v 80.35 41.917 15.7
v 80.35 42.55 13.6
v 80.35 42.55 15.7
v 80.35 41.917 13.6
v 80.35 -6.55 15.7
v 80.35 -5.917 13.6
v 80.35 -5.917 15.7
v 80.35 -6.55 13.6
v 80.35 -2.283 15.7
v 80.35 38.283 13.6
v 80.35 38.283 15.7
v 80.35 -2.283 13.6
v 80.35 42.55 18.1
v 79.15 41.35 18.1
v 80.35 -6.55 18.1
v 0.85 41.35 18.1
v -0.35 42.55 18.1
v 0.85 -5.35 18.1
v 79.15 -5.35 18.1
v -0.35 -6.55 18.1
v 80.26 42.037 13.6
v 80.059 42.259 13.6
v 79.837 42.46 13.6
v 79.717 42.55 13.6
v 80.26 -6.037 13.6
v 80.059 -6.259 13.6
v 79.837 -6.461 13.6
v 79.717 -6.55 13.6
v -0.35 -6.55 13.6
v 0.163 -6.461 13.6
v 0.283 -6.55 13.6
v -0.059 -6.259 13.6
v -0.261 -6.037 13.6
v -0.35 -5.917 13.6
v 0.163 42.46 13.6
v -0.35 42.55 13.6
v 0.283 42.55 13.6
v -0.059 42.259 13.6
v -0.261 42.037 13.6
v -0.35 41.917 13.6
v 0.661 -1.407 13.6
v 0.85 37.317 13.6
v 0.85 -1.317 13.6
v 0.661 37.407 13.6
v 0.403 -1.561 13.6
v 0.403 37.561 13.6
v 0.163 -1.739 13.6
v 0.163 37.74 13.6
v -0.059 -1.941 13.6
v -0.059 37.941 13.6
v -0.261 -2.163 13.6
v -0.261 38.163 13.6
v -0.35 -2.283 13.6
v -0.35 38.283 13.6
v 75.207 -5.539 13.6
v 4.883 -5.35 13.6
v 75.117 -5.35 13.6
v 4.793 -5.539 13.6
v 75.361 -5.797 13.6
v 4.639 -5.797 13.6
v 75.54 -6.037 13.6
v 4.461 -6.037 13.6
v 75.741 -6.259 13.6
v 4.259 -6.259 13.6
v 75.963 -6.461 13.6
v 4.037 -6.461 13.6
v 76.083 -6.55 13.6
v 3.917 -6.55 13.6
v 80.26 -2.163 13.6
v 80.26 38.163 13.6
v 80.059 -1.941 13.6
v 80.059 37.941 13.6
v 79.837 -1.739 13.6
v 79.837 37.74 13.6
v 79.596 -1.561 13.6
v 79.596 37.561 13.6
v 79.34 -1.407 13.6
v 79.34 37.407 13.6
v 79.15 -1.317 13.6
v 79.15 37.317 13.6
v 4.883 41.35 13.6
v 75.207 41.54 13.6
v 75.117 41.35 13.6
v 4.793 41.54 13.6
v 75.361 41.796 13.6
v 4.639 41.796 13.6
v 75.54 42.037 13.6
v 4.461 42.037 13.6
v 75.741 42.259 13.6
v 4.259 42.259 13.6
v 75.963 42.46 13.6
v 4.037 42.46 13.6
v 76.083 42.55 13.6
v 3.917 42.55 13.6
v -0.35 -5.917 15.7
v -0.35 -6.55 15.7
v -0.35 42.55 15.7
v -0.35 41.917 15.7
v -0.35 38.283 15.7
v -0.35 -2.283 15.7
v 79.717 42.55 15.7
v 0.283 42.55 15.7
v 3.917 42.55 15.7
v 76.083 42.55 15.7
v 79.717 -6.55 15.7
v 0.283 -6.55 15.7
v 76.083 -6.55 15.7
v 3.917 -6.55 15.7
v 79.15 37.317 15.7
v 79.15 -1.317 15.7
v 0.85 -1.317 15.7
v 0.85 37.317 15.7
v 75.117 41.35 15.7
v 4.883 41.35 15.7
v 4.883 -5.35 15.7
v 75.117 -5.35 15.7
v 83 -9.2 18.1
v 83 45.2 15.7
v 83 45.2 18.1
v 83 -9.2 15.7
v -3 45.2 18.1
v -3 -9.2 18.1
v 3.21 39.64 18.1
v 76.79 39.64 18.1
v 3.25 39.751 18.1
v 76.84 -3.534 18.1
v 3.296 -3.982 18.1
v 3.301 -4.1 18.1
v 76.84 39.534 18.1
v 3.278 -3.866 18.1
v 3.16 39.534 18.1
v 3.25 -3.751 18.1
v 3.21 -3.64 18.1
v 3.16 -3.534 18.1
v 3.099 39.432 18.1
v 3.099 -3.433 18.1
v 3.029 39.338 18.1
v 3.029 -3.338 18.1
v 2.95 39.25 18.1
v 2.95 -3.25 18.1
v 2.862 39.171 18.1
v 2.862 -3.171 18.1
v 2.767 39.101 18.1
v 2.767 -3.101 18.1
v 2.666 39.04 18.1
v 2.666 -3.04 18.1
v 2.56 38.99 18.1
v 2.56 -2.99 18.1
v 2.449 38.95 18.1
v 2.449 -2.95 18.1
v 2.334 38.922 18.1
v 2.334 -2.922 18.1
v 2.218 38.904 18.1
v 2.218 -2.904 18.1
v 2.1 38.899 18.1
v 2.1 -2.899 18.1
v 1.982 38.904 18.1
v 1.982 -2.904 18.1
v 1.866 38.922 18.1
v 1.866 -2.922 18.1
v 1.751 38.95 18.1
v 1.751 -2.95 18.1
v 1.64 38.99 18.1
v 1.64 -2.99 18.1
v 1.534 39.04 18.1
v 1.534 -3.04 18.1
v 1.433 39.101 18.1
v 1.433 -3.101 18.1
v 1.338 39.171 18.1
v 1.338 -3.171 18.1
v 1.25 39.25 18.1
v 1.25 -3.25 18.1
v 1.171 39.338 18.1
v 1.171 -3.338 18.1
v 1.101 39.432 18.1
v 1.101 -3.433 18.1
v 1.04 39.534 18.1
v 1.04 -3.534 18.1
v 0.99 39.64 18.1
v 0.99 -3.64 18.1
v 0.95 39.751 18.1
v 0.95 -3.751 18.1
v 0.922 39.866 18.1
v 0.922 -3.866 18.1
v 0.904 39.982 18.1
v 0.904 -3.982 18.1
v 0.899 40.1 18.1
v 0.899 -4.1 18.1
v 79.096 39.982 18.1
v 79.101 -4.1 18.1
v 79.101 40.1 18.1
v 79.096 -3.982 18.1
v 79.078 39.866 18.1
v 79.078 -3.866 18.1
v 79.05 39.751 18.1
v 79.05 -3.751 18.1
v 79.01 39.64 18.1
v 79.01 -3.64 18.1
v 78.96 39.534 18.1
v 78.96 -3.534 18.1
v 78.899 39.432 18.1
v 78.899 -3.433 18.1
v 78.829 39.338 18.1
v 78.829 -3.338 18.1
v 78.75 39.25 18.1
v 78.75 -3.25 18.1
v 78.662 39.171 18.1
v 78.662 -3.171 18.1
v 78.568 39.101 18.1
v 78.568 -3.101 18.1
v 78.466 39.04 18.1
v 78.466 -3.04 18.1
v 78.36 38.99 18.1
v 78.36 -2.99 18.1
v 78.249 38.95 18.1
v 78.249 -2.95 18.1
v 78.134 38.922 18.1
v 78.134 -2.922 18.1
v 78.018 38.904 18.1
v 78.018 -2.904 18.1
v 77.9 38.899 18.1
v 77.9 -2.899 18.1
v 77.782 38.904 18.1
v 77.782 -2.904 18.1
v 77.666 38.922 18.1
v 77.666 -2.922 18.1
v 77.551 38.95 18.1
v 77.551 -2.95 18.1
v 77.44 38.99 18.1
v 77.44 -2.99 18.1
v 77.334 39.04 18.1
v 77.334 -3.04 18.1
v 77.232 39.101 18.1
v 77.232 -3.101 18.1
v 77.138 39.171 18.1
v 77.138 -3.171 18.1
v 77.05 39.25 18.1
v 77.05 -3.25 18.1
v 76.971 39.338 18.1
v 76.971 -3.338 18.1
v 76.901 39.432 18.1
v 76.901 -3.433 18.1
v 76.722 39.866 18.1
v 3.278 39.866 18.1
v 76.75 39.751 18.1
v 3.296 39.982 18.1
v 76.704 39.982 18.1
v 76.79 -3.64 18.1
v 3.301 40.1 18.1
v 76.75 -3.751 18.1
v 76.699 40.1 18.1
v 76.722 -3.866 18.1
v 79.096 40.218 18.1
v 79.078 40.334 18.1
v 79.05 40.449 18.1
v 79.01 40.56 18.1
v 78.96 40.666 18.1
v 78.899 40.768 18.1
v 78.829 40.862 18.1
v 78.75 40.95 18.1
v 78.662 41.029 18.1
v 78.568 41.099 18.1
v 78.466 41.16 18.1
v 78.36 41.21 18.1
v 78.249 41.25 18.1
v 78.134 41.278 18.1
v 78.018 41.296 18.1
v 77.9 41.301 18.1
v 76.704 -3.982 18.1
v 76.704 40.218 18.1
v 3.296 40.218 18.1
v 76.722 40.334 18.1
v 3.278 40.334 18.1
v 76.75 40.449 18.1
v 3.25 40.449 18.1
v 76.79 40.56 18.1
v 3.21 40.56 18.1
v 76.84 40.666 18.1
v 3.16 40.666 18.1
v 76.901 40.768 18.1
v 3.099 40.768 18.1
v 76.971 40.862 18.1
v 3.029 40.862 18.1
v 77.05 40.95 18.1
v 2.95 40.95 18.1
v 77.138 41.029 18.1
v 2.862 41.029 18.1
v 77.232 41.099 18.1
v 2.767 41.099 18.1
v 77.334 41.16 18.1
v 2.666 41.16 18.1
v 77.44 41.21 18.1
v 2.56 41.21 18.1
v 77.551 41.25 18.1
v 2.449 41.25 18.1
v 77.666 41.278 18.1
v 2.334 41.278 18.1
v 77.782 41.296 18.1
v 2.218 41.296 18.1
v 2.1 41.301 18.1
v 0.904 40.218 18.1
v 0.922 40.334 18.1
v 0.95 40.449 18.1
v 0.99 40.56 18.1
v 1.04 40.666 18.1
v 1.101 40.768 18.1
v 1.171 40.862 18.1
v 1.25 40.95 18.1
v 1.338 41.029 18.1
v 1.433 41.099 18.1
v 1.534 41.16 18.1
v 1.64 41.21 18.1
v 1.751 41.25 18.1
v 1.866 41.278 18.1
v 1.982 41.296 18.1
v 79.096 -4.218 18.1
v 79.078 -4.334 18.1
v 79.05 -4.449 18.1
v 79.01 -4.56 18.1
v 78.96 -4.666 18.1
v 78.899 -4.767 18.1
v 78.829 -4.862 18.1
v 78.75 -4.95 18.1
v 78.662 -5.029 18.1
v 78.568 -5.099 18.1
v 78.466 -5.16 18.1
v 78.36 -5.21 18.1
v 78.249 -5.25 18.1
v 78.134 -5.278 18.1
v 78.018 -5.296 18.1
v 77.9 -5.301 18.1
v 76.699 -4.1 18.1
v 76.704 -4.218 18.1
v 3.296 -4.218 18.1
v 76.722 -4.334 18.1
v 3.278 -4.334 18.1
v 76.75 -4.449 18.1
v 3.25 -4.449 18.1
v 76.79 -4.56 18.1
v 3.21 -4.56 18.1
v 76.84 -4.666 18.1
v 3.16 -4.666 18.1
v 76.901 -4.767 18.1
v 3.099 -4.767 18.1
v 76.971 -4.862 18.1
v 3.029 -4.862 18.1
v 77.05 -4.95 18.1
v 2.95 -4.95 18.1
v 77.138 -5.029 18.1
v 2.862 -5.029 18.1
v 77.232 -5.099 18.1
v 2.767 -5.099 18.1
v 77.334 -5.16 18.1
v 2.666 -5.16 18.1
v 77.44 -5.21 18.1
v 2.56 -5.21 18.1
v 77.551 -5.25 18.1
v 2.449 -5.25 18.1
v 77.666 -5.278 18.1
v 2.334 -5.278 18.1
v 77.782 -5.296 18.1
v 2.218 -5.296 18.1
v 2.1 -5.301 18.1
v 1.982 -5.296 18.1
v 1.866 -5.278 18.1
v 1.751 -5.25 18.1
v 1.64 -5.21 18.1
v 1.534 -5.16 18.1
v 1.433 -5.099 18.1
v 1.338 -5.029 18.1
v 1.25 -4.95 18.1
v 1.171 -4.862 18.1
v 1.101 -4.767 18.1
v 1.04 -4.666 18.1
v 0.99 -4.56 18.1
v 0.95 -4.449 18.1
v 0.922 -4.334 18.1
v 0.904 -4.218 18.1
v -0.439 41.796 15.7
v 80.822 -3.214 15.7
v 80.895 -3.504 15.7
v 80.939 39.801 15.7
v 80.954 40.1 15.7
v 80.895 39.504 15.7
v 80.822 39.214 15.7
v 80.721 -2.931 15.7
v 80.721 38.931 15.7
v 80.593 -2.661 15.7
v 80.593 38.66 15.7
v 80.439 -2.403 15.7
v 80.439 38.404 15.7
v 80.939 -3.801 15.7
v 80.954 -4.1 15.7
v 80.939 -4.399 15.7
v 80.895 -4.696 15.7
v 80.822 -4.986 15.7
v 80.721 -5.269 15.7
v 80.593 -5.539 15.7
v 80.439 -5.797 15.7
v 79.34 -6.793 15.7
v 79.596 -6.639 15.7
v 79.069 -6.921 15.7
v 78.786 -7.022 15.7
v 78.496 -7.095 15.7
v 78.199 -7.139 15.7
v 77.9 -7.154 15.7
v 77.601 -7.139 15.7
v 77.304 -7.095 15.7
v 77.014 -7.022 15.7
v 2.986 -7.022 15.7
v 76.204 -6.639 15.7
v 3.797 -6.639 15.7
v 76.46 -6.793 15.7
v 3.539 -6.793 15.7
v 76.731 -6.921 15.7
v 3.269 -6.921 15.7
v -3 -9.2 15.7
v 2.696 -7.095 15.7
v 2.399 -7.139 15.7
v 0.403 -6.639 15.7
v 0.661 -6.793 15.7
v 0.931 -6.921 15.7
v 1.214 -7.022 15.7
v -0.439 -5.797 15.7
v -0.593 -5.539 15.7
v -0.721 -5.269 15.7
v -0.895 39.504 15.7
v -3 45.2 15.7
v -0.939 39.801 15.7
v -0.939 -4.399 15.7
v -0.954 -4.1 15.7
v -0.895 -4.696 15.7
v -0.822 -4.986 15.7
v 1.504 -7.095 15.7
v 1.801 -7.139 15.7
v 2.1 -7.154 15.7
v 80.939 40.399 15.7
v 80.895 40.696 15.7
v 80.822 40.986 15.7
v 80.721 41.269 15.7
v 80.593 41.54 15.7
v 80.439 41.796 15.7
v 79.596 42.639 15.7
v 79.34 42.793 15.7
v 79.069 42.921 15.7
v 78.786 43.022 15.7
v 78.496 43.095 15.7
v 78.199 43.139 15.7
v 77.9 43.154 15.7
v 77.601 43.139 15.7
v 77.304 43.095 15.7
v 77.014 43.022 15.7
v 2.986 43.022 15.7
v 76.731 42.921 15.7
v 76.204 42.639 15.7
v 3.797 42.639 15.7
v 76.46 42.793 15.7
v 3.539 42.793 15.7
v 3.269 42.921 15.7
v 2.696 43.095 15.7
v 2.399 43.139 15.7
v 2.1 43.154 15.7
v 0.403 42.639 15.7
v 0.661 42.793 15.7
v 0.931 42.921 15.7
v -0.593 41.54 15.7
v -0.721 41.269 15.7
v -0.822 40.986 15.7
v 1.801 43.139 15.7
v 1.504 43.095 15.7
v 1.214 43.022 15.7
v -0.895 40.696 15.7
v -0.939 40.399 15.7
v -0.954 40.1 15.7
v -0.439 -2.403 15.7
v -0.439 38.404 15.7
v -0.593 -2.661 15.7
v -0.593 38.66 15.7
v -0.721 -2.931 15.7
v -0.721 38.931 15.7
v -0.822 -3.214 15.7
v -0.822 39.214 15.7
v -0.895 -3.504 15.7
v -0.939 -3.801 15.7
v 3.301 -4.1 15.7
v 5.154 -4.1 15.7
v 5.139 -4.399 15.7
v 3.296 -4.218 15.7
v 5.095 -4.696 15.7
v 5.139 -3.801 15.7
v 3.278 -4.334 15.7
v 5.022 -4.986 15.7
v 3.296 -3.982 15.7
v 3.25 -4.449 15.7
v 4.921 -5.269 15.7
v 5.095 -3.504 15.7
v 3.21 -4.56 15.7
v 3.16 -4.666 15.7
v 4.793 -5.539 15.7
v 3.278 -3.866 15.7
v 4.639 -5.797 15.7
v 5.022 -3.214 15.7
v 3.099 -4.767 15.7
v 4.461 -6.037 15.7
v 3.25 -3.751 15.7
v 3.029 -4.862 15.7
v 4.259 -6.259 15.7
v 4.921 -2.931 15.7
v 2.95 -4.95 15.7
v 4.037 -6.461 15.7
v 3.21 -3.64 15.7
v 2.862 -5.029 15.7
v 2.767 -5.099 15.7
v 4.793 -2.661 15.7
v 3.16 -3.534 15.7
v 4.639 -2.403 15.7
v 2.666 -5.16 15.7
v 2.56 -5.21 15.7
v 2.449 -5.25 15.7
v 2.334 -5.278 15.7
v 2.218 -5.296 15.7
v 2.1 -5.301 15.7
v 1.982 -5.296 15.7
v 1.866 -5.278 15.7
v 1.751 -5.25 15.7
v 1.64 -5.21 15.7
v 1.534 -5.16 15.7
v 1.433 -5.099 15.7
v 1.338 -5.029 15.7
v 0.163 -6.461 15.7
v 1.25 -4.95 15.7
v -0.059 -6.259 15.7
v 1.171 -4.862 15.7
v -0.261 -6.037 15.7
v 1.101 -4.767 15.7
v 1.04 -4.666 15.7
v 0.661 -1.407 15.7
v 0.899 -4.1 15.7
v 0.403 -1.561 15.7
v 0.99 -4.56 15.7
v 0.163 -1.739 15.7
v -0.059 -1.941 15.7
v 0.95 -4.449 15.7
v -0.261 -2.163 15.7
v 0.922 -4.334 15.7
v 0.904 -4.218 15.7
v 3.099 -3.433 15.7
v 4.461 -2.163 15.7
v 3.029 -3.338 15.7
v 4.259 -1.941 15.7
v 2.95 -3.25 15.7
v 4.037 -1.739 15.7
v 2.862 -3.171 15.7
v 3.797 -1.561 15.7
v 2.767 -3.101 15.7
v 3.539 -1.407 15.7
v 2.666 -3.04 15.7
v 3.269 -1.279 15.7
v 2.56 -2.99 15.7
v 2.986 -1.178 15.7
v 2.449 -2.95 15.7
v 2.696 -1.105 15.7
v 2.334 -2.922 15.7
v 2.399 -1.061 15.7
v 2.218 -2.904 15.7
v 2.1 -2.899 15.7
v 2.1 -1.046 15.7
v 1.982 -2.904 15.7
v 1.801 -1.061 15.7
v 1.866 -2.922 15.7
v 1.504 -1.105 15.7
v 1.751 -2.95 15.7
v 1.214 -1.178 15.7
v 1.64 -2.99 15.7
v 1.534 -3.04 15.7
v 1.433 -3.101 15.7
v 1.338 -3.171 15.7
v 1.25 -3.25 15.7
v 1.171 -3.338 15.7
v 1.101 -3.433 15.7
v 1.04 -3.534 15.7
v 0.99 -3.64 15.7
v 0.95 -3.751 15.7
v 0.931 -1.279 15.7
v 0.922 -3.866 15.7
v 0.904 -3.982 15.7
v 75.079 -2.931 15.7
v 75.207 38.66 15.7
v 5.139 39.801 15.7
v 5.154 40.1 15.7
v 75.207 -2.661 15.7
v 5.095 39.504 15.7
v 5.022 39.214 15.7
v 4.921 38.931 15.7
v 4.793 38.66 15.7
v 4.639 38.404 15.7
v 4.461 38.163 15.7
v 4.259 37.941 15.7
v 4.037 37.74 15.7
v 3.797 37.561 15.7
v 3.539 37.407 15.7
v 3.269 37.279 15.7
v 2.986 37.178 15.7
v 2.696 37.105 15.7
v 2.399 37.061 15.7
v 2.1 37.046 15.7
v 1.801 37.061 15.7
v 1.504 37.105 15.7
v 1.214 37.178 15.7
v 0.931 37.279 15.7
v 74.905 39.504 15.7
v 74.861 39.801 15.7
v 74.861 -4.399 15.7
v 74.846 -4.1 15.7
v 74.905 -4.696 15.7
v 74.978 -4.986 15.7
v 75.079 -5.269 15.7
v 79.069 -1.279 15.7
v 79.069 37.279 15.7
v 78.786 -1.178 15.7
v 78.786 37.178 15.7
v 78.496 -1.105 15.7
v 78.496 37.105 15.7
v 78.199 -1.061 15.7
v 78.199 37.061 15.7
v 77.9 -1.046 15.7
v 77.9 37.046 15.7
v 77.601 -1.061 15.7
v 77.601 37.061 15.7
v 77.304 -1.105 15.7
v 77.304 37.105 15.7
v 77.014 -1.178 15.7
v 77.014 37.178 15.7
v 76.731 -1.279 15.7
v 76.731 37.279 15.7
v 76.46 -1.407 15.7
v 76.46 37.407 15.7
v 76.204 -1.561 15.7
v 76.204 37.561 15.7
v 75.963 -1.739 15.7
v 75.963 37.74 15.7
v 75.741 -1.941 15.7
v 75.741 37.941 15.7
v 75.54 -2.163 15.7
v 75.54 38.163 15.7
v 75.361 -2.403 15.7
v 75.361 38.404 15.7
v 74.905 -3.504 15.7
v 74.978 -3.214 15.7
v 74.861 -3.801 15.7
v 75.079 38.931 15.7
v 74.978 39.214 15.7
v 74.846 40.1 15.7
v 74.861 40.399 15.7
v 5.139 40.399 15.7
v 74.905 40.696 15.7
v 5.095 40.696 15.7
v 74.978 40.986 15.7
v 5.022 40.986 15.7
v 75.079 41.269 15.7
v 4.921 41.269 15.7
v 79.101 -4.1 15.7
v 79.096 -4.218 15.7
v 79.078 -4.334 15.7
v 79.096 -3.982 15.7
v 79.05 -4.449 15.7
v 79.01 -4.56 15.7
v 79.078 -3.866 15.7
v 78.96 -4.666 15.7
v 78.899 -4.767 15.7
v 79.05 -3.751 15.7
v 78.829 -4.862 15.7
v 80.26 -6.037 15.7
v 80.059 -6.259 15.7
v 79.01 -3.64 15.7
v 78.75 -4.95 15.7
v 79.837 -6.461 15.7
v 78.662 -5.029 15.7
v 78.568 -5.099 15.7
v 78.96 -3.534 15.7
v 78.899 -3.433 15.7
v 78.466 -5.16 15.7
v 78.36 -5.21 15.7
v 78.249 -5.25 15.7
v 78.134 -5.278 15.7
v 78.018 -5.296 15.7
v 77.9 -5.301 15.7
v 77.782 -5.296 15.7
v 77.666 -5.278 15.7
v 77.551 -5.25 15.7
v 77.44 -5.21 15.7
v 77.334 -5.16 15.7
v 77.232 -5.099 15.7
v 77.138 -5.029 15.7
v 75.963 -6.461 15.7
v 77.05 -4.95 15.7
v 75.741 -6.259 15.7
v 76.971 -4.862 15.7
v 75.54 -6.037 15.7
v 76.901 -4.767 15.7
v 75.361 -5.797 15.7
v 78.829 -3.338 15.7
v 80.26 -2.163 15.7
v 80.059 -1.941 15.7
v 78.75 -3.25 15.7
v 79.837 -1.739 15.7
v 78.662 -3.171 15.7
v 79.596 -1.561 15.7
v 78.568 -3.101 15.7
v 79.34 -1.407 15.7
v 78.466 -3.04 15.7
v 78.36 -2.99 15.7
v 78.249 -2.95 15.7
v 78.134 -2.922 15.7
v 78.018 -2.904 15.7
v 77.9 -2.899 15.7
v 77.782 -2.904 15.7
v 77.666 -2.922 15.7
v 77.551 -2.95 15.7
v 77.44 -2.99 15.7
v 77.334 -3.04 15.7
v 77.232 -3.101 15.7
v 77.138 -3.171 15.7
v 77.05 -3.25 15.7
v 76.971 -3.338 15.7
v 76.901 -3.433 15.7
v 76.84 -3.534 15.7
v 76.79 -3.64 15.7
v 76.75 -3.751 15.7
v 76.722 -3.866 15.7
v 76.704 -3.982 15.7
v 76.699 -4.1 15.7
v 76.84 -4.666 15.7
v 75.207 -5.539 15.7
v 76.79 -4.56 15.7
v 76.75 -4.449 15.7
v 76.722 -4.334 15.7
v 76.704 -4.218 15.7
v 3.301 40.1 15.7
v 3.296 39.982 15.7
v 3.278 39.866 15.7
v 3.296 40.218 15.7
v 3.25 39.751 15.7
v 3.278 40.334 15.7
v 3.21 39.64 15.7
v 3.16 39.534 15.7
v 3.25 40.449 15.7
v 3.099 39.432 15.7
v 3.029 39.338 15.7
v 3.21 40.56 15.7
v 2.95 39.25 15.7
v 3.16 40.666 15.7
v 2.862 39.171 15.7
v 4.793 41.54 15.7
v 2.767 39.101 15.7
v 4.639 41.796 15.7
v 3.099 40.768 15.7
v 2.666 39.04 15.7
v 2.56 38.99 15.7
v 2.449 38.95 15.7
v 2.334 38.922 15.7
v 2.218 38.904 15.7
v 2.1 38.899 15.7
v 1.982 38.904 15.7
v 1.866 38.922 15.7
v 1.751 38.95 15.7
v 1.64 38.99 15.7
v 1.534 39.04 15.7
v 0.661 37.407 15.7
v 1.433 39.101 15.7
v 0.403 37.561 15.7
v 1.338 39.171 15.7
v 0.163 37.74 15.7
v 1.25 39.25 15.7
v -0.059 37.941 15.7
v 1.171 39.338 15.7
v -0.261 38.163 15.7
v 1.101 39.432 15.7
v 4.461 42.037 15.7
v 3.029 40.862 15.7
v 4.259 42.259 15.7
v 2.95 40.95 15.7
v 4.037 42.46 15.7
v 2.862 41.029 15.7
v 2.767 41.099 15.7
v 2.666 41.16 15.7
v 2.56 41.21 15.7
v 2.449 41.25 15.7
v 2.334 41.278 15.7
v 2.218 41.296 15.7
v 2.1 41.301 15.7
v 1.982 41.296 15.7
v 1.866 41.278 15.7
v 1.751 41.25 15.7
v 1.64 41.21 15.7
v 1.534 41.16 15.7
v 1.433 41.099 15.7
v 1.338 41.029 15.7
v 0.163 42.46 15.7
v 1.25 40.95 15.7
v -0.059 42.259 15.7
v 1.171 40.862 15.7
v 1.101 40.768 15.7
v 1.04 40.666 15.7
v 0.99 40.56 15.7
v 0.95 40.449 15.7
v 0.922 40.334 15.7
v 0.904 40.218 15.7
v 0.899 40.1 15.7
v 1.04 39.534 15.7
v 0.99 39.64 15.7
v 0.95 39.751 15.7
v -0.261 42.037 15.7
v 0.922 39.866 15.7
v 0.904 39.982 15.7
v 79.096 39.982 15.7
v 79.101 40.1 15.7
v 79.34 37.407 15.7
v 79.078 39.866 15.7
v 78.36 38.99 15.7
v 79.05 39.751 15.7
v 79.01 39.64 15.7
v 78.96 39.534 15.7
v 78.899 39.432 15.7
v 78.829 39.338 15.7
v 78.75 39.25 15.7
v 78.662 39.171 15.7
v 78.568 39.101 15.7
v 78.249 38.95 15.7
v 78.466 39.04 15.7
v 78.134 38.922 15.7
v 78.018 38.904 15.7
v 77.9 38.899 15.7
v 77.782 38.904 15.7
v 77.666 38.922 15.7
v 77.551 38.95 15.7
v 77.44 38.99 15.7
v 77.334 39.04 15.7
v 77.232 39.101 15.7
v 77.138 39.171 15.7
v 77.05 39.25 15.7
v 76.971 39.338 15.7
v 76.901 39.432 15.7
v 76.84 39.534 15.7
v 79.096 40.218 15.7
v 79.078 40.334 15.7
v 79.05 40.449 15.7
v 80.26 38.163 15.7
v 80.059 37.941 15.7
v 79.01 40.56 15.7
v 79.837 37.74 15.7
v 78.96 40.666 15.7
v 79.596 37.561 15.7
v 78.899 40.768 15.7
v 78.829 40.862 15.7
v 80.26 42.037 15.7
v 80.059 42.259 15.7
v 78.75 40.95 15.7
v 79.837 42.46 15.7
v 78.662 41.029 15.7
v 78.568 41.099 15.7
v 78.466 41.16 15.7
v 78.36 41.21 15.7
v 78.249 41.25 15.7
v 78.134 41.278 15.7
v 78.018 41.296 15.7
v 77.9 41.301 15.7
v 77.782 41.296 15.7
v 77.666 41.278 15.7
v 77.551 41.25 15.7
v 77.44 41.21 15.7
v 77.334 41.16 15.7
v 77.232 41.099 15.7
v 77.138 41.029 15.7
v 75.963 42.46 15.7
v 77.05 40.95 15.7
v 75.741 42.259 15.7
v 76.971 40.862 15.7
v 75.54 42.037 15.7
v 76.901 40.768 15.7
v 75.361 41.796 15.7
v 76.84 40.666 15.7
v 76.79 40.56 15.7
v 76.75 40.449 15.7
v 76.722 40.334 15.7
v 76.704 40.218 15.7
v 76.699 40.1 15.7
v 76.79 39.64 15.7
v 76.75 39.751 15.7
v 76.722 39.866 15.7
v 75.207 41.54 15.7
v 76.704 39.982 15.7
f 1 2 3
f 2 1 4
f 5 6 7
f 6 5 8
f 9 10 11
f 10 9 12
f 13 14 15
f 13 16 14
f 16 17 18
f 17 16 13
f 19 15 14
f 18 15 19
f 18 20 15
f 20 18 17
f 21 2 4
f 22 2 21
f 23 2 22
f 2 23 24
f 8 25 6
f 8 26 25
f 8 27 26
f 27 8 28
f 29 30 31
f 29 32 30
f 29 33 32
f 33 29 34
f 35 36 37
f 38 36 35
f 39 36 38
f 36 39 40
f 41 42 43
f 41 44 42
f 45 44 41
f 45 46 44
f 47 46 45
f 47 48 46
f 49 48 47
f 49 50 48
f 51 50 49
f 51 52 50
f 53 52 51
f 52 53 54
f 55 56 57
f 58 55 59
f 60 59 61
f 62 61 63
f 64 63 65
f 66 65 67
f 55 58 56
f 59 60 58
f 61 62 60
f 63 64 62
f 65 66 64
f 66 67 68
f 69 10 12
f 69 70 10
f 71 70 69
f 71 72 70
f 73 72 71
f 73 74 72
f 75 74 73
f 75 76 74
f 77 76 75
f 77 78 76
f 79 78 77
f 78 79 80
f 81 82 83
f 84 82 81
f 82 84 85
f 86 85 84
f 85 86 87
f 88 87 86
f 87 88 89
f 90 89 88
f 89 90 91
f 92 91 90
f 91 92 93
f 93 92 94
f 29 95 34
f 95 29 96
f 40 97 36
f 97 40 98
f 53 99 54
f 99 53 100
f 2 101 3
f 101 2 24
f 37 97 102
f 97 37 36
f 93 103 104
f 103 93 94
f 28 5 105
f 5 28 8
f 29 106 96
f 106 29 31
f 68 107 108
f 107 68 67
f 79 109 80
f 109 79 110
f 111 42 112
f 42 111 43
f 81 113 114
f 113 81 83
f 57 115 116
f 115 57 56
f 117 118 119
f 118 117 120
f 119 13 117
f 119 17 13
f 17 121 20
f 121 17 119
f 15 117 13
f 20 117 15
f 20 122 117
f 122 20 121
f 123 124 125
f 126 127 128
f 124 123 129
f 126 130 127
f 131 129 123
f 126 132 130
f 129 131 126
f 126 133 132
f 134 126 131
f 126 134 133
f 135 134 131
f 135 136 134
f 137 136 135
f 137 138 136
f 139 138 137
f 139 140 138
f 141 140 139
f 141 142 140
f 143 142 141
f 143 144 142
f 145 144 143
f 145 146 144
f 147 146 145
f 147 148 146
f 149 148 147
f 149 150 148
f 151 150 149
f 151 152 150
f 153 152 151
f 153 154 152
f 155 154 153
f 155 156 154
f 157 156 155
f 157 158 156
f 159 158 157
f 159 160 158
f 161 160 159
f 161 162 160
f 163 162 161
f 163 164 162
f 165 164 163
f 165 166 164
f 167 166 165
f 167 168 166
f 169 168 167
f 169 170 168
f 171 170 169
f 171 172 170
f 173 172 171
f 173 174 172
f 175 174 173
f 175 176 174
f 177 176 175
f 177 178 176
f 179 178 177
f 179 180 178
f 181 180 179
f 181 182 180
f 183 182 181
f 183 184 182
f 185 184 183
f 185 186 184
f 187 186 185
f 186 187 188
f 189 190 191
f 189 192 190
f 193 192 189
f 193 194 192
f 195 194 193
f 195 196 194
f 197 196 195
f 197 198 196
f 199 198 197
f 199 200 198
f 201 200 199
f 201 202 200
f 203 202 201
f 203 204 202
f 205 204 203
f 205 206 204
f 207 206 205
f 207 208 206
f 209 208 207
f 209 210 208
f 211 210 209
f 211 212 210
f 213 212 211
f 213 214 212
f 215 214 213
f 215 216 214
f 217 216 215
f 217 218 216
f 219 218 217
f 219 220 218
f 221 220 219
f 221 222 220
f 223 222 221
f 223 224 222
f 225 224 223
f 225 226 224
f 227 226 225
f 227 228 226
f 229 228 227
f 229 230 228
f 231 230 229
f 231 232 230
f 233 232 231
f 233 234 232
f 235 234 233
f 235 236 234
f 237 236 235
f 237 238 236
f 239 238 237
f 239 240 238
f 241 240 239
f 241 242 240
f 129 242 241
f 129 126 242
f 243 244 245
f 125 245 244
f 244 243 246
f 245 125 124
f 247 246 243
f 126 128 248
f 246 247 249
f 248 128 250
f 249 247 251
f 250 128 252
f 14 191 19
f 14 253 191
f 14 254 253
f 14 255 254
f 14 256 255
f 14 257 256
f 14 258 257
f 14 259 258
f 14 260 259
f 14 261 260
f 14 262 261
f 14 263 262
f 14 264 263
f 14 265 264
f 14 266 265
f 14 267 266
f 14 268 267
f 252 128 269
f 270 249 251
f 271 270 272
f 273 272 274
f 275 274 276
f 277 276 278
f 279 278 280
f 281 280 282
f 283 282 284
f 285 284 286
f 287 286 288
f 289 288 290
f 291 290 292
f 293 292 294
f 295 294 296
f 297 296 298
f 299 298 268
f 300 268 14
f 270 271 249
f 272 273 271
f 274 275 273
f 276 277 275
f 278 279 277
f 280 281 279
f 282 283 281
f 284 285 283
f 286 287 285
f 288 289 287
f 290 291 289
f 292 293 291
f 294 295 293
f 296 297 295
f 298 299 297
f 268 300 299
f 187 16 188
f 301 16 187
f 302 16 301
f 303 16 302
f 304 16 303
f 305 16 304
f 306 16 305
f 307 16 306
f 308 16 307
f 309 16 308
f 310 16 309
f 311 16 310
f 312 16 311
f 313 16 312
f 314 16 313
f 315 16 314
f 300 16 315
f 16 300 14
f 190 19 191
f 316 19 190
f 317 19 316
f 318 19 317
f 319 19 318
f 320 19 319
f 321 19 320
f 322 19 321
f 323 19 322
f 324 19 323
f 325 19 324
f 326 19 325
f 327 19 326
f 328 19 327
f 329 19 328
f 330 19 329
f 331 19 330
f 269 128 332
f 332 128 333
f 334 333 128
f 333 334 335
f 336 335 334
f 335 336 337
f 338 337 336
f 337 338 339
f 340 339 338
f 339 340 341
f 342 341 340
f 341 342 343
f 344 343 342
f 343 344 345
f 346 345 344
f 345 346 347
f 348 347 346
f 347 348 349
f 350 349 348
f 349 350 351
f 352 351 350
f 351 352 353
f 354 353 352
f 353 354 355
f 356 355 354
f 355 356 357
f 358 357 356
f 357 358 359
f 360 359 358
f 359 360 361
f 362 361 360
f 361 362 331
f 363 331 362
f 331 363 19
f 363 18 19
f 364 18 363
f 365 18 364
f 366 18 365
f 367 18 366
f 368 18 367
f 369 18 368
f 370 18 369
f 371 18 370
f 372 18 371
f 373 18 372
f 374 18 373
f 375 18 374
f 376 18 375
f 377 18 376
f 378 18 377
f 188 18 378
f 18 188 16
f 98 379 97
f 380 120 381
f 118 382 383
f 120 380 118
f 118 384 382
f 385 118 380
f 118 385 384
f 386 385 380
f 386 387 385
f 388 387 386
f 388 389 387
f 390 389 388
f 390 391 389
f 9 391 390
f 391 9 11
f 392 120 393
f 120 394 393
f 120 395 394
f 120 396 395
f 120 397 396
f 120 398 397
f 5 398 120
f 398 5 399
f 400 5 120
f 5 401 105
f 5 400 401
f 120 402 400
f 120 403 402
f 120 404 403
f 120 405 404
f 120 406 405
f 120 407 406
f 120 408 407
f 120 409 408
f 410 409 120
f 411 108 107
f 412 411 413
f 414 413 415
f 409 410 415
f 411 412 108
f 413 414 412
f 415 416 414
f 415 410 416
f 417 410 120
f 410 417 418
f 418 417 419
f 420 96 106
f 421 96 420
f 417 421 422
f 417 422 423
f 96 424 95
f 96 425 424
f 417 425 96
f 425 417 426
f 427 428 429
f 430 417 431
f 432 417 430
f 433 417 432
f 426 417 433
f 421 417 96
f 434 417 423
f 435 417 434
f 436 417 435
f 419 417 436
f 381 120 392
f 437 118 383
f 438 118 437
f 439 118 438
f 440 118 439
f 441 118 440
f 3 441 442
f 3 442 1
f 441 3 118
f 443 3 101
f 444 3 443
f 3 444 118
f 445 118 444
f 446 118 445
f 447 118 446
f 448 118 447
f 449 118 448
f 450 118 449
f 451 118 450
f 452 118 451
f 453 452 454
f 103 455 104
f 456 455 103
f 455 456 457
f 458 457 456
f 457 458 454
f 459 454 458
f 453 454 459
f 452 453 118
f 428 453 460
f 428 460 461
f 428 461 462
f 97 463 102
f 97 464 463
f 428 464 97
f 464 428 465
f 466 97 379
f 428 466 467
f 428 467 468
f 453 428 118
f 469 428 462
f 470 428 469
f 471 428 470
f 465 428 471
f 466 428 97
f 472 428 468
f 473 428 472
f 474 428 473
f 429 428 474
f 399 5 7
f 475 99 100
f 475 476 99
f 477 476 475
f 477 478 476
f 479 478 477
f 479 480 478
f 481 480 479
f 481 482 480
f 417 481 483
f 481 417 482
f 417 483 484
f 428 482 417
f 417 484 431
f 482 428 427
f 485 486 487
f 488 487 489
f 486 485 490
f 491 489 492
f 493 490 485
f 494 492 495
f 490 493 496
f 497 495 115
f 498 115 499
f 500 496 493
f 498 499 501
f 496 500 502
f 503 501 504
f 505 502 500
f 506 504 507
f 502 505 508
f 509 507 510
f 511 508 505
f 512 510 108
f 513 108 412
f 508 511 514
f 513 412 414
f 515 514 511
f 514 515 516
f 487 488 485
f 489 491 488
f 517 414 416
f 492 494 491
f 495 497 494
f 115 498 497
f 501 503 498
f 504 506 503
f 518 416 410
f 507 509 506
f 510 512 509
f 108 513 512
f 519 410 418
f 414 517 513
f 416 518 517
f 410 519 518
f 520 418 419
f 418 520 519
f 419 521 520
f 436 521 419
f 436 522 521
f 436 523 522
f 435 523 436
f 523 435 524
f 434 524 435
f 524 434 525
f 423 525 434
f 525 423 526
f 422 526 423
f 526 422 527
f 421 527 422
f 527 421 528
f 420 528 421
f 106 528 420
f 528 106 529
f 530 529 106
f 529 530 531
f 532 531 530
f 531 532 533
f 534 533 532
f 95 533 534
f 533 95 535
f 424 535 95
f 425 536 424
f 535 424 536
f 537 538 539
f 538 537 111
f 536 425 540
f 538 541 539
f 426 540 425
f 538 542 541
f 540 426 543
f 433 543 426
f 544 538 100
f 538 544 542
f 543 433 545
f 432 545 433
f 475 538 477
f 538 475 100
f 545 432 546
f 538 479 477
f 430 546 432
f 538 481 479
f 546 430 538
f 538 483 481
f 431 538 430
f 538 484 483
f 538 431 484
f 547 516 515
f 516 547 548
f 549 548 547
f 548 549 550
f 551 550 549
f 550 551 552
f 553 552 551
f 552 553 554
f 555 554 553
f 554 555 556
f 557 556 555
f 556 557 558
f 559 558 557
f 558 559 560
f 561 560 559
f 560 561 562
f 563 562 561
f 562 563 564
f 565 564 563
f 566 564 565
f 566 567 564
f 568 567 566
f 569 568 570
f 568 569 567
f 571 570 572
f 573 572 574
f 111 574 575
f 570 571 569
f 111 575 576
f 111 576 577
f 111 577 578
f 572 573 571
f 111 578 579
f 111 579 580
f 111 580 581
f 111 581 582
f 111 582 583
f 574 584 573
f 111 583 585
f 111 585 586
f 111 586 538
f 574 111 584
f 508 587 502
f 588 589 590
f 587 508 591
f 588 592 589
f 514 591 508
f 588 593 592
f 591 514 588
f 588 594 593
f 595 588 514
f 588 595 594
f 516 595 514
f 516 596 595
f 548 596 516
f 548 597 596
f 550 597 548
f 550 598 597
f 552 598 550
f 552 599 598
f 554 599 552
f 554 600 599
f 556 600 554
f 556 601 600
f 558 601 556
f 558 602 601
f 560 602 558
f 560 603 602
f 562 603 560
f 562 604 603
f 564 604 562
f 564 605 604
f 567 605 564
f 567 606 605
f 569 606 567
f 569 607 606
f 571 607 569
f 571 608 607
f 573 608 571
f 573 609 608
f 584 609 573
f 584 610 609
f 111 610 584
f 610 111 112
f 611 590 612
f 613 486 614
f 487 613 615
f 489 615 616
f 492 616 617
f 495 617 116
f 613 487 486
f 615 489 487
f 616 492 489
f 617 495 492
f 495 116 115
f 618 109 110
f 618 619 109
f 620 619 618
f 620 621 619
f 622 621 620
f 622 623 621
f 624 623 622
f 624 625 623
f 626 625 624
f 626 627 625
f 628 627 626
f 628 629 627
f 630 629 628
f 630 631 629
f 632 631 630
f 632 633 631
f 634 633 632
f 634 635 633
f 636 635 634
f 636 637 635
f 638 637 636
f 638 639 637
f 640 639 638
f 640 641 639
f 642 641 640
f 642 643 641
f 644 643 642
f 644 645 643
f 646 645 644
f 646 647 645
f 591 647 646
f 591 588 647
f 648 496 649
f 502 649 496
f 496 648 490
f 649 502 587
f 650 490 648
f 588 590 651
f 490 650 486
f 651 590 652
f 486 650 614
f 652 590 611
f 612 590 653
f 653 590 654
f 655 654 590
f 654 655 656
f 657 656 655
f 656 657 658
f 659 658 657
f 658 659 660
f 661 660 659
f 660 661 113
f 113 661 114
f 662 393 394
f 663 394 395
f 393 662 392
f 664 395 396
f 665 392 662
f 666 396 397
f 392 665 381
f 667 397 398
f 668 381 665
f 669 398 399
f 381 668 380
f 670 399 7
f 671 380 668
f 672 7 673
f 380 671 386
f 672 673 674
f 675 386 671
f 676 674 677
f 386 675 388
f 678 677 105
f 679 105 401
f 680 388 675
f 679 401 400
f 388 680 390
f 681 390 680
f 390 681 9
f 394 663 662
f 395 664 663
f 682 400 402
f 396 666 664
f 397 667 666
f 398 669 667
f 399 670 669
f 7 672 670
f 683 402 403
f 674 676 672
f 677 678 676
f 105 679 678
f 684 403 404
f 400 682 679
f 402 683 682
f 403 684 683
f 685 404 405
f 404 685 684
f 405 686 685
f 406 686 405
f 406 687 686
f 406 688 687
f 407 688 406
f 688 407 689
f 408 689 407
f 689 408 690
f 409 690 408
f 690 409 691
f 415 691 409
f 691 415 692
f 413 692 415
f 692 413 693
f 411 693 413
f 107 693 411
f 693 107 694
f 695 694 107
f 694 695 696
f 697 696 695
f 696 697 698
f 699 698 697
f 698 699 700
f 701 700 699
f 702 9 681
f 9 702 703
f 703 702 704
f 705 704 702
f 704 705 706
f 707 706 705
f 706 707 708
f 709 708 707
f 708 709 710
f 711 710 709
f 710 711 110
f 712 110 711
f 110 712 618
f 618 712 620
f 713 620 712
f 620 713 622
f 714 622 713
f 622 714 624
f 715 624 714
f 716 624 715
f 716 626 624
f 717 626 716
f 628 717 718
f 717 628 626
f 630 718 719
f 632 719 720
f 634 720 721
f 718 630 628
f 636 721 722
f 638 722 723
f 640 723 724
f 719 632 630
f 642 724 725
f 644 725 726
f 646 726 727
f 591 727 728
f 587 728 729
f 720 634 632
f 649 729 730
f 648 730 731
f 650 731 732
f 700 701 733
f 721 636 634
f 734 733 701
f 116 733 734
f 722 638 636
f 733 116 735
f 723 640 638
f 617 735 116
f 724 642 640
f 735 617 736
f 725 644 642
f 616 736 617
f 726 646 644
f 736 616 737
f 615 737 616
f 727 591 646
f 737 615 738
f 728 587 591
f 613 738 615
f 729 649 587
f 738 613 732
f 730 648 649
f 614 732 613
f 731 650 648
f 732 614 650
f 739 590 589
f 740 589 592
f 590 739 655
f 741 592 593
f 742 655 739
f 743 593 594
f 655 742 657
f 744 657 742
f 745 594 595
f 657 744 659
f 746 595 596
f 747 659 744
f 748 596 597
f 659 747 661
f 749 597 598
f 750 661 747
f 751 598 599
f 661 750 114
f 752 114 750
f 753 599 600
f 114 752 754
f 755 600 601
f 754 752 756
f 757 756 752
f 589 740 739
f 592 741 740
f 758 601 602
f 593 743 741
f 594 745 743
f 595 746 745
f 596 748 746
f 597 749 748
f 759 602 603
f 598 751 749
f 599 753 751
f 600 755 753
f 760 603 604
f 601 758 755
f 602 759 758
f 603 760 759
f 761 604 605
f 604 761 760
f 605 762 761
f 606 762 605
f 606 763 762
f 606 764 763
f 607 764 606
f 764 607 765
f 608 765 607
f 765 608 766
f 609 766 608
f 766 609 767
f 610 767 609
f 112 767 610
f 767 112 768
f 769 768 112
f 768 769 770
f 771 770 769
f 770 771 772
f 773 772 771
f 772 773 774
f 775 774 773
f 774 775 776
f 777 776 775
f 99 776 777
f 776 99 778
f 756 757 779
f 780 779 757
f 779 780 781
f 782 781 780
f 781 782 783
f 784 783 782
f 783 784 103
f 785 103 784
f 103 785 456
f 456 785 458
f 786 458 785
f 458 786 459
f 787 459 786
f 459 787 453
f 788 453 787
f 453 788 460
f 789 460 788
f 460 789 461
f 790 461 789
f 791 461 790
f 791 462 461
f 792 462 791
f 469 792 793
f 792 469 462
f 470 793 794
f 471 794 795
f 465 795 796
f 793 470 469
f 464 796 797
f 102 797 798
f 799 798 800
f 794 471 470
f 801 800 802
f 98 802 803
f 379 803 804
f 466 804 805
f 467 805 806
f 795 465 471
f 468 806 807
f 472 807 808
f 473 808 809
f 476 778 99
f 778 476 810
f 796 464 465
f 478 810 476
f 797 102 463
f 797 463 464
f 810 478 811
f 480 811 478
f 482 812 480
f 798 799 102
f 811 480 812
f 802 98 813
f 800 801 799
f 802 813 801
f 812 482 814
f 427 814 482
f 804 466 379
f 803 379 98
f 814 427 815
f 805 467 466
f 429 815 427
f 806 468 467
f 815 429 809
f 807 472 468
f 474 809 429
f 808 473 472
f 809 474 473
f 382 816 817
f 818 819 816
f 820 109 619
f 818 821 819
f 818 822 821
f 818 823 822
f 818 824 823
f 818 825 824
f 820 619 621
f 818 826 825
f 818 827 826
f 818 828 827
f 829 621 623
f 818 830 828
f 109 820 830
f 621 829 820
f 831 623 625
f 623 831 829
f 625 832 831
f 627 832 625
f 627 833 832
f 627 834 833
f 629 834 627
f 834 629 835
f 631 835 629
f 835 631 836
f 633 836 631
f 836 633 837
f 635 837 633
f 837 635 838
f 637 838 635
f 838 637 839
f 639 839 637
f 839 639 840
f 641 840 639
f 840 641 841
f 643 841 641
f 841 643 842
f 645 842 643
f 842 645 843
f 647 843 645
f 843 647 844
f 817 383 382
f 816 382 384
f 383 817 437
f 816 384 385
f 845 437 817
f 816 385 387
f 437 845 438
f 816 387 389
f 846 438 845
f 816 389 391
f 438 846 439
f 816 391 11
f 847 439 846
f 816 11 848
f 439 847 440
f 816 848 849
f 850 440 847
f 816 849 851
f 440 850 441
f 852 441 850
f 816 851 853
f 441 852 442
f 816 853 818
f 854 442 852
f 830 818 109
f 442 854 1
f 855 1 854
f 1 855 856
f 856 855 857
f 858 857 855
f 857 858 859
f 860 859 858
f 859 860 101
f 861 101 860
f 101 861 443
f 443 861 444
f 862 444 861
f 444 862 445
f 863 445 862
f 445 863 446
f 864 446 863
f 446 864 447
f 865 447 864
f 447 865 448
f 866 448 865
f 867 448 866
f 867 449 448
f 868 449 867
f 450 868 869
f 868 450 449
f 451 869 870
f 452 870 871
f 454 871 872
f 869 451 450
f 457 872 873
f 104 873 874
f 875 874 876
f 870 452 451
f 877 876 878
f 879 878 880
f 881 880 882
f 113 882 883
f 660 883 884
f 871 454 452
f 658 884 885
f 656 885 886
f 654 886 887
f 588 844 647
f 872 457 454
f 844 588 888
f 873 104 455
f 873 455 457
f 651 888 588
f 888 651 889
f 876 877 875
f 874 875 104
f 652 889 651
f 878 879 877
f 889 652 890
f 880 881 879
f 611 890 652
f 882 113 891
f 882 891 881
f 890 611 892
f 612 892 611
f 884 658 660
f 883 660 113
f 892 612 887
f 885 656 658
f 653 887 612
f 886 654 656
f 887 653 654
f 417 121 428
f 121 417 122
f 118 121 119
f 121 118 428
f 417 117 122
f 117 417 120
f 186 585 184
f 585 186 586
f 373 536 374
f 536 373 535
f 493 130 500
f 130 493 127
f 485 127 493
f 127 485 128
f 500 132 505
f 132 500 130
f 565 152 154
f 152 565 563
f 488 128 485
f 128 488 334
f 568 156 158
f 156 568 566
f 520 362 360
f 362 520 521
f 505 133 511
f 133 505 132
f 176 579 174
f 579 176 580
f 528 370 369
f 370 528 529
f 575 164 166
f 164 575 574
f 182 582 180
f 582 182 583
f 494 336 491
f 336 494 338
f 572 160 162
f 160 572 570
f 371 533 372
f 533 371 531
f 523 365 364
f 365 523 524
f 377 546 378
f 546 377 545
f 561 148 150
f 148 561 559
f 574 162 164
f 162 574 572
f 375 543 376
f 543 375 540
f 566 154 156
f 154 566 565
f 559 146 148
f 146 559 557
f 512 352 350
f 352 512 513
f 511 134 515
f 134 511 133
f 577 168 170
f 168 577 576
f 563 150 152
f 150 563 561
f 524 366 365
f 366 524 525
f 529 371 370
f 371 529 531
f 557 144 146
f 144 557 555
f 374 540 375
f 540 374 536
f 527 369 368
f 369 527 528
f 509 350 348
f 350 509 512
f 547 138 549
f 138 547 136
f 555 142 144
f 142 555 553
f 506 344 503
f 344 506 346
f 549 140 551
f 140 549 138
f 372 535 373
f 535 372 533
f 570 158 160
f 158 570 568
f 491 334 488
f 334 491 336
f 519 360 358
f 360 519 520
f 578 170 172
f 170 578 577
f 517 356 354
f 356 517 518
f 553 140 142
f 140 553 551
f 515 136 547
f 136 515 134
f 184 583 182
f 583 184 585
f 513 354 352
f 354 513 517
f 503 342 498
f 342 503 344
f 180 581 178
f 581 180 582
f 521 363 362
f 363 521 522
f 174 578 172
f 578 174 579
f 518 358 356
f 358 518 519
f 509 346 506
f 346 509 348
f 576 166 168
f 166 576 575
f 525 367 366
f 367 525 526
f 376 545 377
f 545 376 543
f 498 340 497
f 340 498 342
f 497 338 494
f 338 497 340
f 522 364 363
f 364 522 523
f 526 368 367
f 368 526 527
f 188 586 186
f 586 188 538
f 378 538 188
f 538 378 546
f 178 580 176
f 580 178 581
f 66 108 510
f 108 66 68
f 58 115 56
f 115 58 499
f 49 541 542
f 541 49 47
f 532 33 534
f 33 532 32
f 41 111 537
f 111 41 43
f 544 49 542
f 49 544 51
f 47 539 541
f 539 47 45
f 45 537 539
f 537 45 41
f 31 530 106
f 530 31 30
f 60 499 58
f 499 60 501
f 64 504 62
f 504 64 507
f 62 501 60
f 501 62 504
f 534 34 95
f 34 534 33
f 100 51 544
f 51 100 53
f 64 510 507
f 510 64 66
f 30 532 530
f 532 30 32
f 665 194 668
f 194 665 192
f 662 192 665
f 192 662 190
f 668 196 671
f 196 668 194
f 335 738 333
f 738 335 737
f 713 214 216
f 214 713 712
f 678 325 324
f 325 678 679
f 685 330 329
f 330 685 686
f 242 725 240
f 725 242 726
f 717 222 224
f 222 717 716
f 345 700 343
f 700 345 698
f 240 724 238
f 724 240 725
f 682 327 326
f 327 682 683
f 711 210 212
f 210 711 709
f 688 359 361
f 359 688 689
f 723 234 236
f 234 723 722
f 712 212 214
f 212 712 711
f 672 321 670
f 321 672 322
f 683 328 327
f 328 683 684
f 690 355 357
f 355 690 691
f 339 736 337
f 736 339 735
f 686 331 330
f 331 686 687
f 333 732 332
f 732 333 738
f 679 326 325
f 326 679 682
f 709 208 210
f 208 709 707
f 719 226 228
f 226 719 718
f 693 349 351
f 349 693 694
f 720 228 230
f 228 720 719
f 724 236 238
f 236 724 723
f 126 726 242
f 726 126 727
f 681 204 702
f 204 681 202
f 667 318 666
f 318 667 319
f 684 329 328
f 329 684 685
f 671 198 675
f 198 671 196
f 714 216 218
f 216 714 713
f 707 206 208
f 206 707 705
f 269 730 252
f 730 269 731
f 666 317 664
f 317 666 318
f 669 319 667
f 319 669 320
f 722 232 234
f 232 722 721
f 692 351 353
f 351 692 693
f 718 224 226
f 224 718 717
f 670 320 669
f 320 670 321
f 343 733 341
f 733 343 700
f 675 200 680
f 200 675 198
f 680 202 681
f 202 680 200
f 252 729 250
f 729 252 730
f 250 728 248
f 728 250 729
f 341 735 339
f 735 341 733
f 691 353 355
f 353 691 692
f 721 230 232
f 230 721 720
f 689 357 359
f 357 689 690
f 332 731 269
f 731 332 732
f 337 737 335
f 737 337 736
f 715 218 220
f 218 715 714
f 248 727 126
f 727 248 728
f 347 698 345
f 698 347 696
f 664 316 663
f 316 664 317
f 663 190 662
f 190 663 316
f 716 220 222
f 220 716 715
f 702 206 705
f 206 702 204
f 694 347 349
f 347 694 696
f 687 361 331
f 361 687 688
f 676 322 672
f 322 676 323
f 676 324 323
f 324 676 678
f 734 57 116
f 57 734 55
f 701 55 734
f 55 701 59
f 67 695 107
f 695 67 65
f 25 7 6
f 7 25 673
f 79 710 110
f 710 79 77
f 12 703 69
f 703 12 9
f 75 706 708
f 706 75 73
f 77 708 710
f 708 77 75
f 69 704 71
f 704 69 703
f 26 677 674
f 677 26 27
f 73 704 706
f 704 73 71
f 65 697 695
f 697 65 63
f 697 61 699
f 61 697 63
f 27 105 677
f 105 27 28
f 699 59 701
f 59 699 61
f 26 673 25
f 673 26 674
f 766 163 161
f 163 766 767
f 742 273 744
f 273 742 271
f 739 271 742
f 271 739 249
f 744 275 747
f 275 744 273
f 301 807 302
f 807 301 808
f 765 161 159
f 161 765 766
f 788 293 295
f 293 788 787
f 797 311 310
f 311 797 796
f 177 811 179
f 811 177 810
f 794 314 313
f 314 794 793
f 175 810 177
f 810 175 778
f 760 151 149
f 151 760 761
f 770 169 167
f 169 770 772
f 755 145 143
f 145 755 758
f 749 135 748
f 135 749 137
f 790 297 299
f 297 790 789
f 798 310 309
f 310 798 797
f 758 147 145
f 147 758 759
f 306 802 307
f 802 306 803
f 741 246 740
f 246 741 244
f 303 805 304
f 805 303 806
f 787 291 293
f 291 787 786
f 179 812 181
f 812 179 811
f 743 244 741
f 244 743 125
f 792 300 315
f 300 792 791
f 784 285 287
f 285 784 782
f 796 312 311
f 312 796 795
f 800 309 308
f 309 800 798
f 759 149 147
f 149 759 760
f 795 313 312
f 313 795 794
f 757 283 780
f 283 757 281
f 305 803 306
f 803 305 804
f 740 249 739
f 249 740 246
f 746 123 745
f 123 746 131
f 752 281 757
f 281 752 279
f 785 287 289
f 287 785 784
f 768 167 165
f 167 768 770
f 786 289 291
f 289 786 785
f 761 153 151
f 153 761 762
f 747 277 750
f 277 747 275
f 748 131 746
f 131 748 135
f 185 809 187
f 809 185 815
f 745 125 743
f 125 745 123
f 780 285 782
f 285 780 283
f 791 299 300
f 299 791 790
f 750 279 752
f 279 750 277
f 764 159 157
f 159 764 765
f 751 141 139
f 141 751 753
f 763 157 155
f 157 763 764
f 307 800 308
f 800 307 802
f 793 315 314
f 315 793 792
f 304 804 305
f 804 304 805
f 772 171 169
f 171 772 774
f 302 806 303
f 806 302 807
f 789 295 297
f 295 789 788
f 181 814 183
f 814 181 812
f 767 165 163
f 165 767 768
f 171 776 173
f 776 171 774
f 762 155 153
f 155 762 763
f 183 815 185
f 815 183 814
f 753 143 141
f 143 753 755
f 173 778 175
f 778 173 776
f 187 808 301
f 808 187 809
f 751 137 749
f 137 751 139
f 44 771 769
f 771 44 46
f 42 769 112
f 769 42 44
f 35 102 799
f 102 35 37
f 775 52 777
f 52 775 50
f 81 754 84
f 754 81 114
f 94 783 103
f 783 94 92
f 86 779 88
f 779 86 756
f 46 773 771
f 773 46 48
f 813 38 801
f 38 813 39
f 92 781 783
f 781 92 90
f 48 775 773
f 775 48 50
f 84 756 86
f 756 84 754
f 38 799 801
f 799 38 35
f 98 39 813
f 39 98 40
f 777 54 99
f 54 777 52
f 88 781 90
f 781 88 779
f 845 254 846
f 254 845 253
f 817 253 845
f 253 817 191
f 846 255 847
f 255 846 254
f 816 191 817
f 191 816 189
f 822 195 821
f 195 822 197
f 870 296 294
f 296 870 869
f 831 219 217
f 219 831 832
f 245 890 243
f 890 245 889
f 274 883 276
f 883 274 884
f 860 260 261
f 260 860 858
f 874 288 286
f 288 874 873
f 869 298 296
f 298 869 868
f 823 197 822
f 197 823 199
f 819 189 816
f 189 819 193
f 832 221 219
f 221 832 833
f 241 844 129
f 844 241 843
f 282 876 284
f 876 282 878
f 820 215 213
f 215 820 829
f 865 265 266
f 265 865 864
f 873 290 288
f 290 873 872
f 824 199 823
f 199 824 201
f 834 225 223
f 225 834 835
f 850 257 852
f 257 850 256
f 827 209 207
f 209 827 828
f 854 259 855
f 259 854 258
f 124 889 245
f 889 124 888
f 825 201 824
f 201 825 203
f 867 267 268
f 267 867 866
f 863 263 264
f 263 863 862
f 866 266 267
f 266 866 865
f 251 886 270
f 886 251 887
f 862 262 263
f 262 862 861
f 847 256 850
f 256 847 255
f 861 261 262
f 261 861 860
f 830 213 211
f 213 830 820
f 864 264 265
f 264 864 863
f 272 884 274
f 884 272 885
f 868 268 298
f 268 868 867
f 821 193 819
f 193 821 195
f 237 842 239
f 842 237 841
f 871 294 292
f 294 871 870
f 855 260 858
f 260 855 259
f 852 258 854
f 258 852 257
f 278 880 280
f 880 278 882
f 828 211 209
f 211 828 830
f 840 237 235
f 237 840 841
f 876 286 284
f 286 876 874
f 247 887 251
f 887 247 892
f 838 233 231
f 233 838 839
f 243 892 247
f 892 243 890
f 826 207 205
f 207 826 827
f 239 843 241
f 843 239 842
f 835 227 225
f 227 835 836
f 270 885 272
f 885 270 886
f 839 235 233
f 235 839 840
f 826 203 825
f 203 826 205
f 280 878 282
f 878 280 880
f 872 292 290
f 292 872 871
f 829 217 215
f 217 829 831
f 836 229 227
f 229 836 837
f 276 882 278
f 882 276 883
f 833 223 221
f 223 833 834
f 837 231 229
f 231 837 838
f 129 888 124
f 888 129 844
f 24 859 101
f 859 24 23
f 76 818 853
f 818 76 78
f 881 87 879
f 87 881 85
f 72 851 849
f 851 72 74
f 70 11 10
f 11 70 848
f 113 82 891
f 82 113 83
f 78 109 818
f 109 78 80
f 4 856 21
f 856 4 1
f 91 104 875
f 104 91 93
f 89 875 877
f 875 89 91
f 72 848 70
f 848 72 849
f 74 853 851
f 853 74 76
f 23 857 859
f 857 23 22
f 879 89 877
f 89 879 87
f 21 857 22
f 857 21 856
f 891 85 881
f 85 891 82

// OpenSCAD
// body lid
difference() {
  union() {
    // body lid (lid_plate)
    multmatrix([[1, 0, 0, 40], [0, 1, 0, 18], [0, 0, 1, 15.7], [0, 0, 0, 1]]) translate([-43, -27.2, 0]) cube([86, 54.4, 2.4]);
    // add lid_lip (lip)
    multmatrix([[1, 0, 0, 40], [0, 1, 0, 18], [0, 0, 1, 13.6], [0, 0, 0, 1]]) difference() { translate([-40.35, -24.55, 0]) cube([80.7, 49.1, 4.5]); translate([0, 0, -1]) translate([-39.15, -23.35, 0]) cube([78.3, 46.7, 6.5]); }
  }
  // cut boss_1_lid_hole (screw_hole)
  multmatrix([[1, 0, 0, 2.1], [0, 1, 0, -4.1], [0, 0, 1, 14.7], [0, 0, 0, 1]]) cylinder(h=4.4, d=2.402894, $fn=64);
  // cut boss_1_lip_notch (lip_notch)
  multmatrix([[1, 0, 0, 2.1], [0, 1, 0, -4.1], [0, 0, 1, 12.6], [0, 0, 0, 1]]) cylinder(h=3.1, d=6.107357, $fn=64);
  // cut boss_2_lid_hole (screw_hole)
  multmatrix([[1, 0, 0, 77.9], [0, 1, 0, -4.1], [0, 0, 1, 14.7], [0, 0, 0, 1]]) cylinder(h=4.4, d=2.402894, $fn=64);
  // cut boss_2_lip_notch (lip_notch)
  multmatrix([[1, 0, 0, 77.9], [0, 1, 0, -4.1], [0, 0, 1, 12.6], [0, 0, 0, 1]]) cylinder(h=3.1, d=6.107357, $fn=64);
  // cut boss_3_lid_hole (screw_hole)
  multmatrix([[1, 0, 0, 2.1], [0, 1, 0, 40.1], [0, 0, 1, 14.7], [0, 0, 0, 1]]) cylinder(h=4.4, d=2.402894, $fn=64);
  // cut boss_3_lip_notch (lip_notch)
  multmatrix([[1, 0, 0, 2.1], [0, 1, 0, 40.1], [0, 0, 1, 12.6], [0, 0, 0, 1]]) cylinder(h=3.1, d=6.107357, $fn=64);
  // cut boss_4_lid_hole (screw_hole)
  multmatrix([[1, 0, 0, 77.9], [0, 1, 0, 40.1], [0, 0, 1, 14.7], [0, 0, 0, 1]]) cylinder(h=4.4, d=2.402894, $fn=64);
  // cut boss_4_lip_notch (lip_notch)
  multmatrix([[1, 0, 0, 77.9], [0, 1, 0, 40.1], [0, 0, 1, 12.6], [0, 0, 0, 1]]) cylinder(h=3.1, d=6.107357, $fn=64);
}
